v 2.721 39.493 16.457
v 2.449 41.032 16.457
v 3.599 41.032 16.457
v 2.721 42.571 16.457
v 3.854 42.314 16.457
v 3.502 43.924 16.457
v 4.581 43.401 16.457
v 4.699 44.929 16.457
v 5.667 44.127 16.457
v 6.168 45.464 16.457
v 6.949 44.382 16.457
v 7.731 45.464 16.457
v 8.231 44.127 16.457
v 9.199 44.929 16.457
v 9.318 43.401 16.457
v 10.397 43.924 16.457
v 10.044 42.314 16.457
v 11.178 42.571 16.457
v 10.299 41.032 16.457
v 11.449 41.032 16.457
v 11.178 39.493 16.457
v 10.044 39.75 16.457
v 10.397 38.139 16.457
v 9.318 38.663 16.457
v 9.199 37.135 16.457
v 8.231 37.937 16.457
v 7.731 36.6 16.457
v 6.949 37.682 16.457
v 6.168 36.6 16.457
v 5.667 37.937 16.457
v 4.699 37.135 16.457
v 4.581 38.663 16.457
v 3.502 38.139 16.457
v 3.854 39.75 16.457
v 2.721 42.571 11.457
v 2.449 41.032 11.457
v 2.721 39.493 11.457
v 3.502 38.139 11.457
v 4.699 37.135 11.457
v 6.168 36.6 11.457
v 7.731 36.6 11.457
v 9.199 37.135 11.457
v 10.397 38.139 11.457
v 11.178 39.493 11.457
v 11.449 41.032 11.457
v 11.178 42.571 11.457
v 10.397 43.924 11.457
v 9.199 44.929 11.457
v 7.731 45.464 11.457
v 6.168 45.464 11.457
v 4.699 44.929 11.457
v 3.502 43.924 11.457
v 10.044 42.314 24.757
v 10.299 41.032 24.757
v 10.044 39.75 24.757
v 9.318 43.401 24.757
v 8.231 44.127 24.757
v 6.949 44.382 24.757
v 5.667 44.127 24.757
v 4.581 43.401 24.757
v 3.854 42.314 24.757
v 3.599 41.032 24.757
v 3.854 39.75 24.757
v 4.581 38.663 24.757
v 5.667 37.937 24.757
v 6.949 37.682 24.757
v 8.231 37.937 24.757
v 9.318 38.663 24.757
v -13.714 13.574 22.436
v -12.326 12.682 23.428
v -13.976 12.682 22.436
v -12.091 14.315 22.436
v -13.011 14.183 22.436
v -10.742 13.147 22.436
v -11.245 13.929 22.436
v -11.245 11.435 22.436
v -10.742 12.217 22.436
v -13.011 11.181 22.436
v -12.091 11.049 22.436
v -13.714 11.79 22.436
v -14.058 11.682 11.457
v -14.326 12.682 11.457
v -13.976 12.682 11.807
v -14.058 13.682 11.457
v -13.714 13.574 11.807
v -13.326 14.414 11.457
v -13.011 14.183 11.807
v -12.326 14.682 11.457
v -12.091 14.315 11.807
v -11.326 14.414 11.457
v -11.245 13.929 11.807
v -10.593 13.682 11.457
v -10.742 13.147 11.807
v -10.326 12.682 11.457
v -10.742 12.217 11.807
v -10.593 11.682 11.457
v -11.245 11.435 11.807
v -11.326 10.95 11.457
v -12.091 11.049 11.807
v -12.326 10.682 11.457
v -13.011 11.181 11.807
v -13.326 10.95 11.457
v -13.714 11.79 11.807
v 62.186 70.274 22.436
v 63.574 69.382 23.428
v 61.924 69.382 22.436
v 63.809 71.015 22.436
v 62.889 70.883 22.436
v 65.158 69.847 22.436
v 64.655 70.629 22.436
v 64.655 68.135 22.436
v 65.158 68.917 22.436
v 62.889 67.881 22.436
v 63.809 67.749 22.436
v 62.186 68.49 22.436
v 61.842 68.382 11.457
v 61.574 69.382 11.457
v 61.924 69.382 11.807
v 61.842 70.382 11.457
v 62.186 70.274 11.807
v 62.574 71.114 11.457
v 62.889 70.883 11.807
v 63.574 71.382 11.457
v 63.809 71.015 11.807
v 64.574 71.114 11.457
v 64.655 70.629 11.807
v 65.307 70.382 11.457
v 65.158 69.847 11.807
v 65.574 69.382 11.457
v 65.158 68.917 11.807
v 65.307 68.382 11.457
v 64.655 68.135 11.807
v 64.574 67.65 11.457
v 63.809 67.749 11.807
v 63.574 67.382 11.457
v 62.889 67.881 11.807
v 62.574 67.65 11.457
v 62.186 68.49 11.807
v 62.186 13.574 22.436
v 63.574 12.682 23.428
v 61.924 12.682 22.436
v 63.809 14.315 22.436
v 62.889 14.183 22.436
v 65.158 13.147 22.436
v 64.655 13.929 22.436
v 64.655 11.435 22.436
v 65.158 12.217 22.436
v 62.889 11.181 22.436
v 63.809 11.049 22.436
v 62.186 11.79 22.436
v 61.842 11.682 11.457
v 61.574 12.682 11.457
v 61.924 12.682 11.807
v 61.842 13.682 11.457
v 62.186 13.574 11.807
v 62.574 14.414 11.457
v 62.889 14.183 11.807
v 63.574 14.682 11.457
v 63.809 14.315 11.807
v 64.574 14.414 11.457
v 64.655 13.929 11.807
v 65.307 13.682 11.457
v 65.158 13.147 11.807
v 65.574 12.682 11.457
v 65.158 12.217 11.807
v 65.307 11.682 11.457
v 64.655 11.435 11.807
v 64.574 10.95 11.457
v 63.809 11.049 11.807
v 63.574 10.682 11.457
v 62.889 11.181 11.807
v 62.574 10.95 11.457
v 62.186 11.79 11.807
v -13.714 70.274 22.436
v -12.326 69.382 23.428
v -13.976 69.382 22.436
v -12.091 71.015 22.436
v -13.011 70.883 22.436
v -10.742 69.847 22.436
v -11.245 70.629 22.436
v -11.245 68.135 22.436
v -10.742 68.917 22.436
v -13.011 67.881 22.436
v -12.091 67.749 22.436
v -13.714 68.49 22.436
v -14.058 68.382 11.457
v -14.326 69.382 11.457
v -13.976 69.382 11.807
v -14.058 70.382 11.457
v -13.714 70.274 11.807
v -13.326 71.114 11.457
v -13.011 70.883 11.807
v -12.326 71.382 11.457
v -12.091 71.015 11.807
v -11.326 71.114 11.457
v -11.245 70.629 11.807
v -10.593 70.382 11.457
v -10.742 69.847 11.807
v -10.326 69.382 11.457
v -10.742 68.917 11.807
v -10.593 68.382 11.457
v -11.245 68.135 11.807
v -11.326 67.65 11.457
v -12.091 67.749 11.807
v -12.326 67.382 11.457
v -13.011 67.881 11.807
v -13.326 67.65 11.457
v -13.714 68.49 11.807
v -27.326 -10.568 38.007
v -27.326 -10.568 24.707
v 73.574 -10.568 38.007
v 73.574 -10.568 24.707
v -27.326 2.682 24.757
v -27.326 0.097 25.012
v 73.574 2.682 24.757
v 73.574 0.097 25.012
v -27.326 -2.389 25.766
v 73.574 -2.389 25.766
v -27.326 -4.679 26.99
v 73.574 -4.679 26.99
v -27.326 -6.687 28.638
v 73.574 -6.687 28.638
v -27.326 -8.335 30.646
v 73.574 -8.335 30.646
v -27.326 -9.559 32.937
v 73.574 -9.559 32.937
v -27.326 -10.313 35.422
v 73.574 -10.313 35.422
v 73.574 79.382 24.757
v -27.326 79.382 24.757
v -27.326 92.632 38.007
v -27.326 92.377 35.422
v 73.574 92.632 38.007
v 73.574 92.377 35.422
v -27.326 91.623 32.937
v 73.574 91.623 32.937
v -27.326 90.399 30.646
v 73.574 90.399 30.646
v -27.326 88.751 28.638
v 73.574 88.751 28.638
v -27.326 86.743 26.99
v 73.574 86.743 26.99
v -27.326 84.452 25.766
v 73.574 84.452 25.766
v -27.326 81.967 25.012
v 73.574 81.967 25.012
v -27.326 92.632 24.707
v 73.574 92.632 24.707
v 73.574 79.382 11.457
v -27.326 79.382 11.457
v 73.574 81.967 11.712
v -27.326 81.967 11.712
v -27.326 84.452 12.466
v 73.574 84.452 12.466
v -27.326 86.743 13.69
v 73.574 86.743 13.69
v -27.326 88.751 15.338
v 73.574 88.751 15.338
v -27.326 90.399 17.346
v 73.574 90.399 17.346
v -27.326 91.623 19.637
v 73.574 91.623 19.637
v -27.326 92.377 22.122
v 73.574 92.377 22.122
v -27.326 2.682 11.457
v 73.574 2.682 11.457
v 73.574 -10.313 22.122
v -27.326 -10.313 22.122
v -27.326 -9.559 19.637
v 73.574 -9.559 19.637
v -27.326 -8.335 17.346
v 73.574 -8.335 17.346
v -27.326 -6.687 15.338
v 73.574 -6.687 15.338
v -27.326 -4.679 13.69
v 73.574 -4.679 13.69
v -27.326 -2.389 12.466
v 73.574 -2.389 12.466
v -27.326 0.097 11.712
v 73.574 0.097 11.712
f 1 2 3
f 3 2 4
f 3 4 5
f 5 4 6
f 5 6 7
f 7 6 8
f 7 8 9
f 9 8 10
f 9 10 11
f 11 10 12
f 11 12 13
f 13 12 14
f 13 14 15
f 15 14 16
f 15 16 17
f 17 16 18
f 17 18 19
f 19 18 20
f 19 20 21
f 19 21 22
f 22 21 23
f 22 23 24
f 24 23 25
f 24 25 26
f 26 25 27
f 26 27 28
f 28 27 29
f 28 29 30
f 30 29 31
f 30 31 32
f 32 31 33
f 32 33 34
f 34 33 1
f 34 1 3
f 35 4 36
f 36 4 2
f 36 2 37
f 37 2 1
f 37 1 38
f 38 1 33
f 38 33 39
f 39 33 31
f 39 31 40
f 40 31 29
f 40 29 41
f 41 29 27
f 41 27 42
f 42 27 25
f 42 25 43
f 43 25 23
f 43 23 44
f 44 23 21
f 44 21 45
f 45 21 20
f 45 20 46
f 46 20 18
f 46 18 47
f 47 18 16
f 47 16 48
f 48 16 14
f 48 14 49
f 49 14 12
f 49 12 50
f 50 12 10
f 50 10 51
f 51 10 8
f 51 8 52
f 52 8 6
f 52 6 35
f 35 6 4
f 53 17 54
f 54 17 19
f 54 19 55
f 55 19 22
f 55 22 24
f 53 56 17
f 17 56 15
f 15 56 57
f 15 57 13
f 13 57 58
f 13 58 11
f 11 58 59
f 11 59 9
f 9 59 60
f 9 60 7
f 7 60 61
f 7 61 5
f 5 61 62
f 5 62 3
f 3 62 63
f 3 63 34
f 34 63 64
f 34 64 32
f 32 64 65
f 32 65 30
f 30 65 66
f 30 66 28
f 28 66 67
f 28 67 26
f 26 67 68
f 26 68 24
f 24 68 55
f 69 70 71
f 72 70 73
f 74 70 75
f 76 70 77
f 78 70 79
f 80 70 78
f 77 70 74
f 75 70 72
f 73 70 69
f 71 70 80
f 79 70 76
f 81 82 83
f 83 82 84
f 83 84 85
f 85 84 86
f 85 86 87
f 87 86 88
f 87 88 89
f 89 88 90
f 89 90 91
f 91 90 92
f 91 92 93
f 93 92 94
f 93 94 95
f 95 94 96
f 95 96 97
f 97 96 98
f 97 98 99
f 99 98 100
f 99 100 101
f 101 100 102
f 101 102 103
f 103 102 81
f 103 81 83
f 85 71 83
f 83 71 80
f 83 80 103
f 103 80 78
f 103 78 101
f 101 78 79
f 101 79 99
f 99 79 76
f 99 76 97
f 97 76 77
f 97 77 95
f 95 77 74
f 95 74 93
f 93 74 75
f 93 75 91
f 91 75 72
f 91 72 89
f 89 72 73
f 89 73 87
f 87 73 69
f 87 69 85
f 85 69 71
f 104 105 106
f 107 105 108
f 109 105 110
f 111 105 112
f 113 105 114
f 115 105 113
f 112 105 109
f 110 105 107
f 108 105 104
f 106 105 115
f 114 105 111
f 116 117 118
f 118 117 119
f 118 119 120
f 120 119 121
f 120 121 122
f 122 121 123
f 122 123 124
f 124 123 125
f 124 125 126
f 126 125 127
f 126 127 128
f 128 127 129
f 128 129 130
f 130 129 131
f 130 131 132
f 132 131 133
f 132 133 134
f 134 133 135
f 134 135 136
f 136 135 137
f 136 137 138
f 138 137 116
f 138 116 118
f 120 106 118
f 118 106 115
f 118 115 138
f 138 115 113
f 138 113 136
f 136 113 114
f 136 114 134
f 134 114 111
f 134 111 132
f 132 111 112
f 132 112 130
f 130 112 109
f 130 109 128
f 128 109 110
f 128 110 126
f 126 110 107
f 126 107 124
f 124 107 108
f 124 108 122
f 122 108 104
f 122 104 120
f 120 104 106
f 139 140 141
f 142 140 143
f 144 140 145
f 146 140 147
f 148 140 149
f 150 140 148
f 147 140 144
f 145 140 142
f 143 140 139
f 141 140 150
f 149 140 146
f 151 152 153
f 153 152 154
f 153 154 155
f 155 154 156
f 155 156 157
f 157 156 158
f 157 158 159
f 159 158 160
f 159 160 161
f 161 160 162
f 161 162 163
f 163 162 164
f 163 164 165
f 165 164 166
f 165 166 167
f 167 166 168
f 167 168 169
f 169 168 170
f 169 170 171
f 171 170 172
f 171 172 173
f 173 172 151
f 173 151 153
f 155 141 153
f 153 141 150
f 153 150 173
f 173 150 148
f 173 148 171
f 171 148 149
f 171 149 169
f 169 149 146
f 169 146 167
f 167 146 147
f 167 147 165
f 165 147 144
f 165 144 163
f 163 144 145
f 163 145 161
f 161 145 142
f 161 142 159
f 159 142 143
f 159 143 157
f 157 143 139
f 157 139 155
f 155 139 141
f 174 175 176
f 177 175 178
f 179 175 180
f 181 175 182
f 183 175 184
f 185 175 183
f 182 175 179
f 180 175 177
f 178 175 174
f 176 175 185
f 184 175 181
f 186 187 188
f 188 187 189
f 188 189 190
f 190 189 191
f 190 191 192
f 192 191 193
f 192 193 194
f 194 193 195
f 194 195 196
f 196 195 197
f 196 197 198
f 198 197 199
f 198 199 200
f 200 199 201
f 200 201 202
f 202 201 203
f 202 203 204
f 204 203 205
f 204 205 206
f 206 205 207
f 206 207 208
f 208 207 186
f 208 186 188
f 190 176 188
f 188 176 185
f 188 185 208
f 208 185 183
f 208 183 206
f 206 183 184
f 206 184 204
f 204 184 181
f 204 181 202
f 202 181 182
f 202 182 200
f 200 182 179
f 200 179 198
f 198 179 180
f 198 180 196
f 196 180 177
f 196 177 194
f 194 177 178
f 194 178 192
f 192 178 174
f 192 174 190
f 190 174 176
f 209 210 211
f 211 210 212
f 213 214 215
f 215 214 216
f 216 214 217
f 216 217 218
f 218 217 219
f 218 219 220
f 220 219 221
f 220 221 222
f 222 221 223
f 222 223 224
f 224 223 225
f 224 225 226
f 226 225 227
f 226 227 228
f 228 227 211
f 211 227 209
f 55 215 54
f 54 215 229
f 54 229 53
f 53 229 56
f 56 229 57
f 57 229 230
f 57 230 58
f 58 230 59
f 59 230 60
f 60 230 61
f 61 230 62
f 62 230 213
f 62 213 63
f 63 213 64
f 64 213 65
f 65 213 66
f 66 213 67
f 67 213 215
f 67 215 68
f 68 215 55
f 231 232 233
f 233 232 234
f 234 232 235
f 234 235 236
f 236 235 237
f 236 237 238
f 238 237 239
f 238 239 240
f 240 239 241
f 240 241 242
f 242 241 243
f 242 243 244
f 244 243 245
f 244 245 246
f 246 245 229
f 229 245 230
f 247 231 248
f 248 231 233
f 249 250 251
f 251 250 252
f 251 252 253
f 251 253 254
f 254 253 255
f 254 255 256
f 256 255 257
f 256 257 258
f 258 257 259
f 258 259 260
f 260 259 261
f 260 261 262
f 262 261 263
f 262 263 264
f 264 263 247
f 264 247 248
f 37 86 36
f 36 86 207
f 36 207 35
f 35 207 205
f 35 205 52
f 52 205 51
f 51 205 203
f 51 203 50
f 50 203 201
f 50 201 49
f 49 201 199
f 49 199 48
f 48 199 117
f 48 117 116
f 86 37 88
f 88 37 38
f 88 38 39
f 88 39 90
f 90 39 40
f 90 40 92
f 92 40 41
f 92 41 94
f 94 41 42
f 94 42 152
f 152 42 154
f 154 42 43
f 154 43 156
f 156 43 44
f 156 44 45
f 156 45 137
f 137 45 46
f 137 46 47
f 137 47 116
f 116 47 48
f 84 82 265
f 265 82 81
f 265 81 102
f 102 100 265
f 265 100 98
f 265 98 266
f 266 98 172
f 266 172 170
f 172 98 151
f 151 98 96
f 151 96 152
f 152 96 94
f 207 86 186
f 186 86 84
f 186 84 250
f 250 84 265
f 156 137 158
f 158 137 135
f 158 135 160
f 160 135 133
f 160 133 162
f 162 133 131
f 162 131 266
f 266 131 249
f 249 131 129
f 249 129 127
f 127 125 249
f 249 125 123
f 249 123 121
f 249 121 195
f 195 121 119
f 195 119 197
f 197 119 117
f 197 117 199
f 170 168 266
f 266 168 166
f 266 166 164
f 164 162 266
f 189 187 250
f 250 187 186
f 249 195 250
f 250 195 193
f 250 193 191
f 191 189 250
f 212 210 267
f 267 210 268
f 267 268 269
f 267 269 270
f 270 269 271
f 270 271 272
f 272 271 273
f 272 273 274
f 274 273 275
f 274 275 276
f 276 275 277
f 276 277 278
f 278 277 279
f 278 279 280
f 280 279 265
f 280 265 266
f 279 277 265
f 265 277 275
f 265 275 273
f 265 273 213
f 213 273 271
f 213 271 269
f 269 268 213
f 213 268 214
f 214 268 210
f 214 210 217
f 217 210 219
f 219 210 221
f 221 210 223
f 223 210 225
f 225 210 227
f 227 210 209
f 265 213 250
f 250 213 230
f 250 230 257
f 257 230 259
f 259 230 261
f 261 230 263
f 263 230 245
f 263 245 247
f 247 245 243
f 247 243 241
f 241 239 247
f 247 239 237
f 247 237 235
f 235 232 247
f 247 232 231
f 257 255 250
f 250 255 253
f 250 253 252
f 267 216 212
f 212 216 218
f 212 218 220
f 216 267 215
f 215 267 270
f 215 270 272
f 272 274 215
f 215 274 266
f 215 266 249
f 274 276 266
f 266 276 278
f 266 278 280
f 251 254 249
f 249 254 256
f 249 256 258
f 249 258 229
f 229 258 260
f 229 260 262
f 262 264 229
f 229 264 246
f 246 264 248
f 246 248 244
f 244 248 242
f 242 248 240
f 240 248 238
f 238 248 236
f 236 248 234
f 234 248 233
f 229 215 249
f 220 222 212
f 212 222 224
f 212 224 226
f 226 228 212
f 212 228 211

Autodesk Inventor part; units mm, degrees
ref_plane "YZ Plane" through (0, 0, 0) normal (1, 0, 0) x (0, 1, 0)
ref_plane "XZ Plane" through (0, 0, 0) normal (0, 1, 0) x (-1, 0, 0)
ref_plane "XY Plane" through (0, 0, 0) normal (0, 0, 1) x (1, 0, 0)
ref_plane "作業平面1" through (-27.3255, 41.0319, 38.0074) normal (1, 0, 0) x (0, 1, 0)
sketch "スケッチ2" plane through (-27.3255, 41.0319, 38.0074) normal (1, 0, 0) x (0, 1, 0)
  arc A0 (-51.6, -13.3) -> (-38.35, -26.55) centre (-38.35, -13.3) ccw
  line L0 (-51.6, 0) -> (-51.6, -13.3)
  arc A1 (-51.6, 0) -> (-38.35, -13.25) centre (-38.35, 0) ccw
  line L1 (38.35, -13.25) -> (-38.35, -13.25)
  arc A2 (38.35, -13.25) -> (51.6, 0) centre (38.35, 0) ccw
  line L2 (51.6, -13.3) -> (51.6, 0)
  arc A3 (38.35, -26.55) -> (51.6, -13.3) centre (38.35, -13.3) ccw
  line L3 (-38.35, -26.55) -> (38.35, -26.55)
  point P0 (-41.0319, -38.0074)
extrude "押し出し1" add sketch "スケッチ2" along normal blind 100.9
sketch "スケッチ3" plane through (-27.3255, 2.6819, 11.4574) normal (0, 0, -1) x (-1, 0, 0)
  line L0 (0, 76.7) -> (-100.9, 76.7) projected
  line L1 (-100.9, 0) -> (-100.9, 76.7) projected
  line L2 (0, 0) -> (-100.9, 0) projected
  line L3 (0, 76.7) -> (0, 0) projected
  point P0 (-27.3255, -2.6819)
  point P1 (-90.9, 66.7)
  point P2 (-90.9, 10)
  point P3 (-15, 10)
  point P4 (-15, 66.7)
  dimension "d2" = 10
  dimension "d3" = 10
  dimension "d4" = 10
  dimension "d5" = 10
  dimension "d6" = 10
  dimension "d7" = 15
  dimension "d8" = 15
  dimension "d9" = 10
hole "穴2" at (63.5745, 69.3819, 11.4574) at (63.5745, 12.6819, 11.4574) at (-12.3255, 12.6819, 11.4574) at (-12.3255, 69.3819, 11.4574) direction (0, 0, 1) diameter 3.3 depth 10.979 tip angle 118 countersink diameter 4 countersink angle 90
sketch "スケッチ4" plane through (-27.3255, 2.6819, 11.4574) normal (0, 0, -1) x (-1, 0, 0)
  circle A0 centre (-34.275, 38.35) radius 4.175 projected
  circle A1 centre (-34.275, 38.35) radius 3.35
  point P0 (-27.3255, -2.6819)
  dimension "d24" = 6.7
hole "穴3" at (6.9495, 41.0319, 11.4574) direction (0, 0, 1) diameter 6.7 depth 15 tip angle 118 counterbore diameter 9 counterbore depth 5
properties part number "AzureKinectCradle"
